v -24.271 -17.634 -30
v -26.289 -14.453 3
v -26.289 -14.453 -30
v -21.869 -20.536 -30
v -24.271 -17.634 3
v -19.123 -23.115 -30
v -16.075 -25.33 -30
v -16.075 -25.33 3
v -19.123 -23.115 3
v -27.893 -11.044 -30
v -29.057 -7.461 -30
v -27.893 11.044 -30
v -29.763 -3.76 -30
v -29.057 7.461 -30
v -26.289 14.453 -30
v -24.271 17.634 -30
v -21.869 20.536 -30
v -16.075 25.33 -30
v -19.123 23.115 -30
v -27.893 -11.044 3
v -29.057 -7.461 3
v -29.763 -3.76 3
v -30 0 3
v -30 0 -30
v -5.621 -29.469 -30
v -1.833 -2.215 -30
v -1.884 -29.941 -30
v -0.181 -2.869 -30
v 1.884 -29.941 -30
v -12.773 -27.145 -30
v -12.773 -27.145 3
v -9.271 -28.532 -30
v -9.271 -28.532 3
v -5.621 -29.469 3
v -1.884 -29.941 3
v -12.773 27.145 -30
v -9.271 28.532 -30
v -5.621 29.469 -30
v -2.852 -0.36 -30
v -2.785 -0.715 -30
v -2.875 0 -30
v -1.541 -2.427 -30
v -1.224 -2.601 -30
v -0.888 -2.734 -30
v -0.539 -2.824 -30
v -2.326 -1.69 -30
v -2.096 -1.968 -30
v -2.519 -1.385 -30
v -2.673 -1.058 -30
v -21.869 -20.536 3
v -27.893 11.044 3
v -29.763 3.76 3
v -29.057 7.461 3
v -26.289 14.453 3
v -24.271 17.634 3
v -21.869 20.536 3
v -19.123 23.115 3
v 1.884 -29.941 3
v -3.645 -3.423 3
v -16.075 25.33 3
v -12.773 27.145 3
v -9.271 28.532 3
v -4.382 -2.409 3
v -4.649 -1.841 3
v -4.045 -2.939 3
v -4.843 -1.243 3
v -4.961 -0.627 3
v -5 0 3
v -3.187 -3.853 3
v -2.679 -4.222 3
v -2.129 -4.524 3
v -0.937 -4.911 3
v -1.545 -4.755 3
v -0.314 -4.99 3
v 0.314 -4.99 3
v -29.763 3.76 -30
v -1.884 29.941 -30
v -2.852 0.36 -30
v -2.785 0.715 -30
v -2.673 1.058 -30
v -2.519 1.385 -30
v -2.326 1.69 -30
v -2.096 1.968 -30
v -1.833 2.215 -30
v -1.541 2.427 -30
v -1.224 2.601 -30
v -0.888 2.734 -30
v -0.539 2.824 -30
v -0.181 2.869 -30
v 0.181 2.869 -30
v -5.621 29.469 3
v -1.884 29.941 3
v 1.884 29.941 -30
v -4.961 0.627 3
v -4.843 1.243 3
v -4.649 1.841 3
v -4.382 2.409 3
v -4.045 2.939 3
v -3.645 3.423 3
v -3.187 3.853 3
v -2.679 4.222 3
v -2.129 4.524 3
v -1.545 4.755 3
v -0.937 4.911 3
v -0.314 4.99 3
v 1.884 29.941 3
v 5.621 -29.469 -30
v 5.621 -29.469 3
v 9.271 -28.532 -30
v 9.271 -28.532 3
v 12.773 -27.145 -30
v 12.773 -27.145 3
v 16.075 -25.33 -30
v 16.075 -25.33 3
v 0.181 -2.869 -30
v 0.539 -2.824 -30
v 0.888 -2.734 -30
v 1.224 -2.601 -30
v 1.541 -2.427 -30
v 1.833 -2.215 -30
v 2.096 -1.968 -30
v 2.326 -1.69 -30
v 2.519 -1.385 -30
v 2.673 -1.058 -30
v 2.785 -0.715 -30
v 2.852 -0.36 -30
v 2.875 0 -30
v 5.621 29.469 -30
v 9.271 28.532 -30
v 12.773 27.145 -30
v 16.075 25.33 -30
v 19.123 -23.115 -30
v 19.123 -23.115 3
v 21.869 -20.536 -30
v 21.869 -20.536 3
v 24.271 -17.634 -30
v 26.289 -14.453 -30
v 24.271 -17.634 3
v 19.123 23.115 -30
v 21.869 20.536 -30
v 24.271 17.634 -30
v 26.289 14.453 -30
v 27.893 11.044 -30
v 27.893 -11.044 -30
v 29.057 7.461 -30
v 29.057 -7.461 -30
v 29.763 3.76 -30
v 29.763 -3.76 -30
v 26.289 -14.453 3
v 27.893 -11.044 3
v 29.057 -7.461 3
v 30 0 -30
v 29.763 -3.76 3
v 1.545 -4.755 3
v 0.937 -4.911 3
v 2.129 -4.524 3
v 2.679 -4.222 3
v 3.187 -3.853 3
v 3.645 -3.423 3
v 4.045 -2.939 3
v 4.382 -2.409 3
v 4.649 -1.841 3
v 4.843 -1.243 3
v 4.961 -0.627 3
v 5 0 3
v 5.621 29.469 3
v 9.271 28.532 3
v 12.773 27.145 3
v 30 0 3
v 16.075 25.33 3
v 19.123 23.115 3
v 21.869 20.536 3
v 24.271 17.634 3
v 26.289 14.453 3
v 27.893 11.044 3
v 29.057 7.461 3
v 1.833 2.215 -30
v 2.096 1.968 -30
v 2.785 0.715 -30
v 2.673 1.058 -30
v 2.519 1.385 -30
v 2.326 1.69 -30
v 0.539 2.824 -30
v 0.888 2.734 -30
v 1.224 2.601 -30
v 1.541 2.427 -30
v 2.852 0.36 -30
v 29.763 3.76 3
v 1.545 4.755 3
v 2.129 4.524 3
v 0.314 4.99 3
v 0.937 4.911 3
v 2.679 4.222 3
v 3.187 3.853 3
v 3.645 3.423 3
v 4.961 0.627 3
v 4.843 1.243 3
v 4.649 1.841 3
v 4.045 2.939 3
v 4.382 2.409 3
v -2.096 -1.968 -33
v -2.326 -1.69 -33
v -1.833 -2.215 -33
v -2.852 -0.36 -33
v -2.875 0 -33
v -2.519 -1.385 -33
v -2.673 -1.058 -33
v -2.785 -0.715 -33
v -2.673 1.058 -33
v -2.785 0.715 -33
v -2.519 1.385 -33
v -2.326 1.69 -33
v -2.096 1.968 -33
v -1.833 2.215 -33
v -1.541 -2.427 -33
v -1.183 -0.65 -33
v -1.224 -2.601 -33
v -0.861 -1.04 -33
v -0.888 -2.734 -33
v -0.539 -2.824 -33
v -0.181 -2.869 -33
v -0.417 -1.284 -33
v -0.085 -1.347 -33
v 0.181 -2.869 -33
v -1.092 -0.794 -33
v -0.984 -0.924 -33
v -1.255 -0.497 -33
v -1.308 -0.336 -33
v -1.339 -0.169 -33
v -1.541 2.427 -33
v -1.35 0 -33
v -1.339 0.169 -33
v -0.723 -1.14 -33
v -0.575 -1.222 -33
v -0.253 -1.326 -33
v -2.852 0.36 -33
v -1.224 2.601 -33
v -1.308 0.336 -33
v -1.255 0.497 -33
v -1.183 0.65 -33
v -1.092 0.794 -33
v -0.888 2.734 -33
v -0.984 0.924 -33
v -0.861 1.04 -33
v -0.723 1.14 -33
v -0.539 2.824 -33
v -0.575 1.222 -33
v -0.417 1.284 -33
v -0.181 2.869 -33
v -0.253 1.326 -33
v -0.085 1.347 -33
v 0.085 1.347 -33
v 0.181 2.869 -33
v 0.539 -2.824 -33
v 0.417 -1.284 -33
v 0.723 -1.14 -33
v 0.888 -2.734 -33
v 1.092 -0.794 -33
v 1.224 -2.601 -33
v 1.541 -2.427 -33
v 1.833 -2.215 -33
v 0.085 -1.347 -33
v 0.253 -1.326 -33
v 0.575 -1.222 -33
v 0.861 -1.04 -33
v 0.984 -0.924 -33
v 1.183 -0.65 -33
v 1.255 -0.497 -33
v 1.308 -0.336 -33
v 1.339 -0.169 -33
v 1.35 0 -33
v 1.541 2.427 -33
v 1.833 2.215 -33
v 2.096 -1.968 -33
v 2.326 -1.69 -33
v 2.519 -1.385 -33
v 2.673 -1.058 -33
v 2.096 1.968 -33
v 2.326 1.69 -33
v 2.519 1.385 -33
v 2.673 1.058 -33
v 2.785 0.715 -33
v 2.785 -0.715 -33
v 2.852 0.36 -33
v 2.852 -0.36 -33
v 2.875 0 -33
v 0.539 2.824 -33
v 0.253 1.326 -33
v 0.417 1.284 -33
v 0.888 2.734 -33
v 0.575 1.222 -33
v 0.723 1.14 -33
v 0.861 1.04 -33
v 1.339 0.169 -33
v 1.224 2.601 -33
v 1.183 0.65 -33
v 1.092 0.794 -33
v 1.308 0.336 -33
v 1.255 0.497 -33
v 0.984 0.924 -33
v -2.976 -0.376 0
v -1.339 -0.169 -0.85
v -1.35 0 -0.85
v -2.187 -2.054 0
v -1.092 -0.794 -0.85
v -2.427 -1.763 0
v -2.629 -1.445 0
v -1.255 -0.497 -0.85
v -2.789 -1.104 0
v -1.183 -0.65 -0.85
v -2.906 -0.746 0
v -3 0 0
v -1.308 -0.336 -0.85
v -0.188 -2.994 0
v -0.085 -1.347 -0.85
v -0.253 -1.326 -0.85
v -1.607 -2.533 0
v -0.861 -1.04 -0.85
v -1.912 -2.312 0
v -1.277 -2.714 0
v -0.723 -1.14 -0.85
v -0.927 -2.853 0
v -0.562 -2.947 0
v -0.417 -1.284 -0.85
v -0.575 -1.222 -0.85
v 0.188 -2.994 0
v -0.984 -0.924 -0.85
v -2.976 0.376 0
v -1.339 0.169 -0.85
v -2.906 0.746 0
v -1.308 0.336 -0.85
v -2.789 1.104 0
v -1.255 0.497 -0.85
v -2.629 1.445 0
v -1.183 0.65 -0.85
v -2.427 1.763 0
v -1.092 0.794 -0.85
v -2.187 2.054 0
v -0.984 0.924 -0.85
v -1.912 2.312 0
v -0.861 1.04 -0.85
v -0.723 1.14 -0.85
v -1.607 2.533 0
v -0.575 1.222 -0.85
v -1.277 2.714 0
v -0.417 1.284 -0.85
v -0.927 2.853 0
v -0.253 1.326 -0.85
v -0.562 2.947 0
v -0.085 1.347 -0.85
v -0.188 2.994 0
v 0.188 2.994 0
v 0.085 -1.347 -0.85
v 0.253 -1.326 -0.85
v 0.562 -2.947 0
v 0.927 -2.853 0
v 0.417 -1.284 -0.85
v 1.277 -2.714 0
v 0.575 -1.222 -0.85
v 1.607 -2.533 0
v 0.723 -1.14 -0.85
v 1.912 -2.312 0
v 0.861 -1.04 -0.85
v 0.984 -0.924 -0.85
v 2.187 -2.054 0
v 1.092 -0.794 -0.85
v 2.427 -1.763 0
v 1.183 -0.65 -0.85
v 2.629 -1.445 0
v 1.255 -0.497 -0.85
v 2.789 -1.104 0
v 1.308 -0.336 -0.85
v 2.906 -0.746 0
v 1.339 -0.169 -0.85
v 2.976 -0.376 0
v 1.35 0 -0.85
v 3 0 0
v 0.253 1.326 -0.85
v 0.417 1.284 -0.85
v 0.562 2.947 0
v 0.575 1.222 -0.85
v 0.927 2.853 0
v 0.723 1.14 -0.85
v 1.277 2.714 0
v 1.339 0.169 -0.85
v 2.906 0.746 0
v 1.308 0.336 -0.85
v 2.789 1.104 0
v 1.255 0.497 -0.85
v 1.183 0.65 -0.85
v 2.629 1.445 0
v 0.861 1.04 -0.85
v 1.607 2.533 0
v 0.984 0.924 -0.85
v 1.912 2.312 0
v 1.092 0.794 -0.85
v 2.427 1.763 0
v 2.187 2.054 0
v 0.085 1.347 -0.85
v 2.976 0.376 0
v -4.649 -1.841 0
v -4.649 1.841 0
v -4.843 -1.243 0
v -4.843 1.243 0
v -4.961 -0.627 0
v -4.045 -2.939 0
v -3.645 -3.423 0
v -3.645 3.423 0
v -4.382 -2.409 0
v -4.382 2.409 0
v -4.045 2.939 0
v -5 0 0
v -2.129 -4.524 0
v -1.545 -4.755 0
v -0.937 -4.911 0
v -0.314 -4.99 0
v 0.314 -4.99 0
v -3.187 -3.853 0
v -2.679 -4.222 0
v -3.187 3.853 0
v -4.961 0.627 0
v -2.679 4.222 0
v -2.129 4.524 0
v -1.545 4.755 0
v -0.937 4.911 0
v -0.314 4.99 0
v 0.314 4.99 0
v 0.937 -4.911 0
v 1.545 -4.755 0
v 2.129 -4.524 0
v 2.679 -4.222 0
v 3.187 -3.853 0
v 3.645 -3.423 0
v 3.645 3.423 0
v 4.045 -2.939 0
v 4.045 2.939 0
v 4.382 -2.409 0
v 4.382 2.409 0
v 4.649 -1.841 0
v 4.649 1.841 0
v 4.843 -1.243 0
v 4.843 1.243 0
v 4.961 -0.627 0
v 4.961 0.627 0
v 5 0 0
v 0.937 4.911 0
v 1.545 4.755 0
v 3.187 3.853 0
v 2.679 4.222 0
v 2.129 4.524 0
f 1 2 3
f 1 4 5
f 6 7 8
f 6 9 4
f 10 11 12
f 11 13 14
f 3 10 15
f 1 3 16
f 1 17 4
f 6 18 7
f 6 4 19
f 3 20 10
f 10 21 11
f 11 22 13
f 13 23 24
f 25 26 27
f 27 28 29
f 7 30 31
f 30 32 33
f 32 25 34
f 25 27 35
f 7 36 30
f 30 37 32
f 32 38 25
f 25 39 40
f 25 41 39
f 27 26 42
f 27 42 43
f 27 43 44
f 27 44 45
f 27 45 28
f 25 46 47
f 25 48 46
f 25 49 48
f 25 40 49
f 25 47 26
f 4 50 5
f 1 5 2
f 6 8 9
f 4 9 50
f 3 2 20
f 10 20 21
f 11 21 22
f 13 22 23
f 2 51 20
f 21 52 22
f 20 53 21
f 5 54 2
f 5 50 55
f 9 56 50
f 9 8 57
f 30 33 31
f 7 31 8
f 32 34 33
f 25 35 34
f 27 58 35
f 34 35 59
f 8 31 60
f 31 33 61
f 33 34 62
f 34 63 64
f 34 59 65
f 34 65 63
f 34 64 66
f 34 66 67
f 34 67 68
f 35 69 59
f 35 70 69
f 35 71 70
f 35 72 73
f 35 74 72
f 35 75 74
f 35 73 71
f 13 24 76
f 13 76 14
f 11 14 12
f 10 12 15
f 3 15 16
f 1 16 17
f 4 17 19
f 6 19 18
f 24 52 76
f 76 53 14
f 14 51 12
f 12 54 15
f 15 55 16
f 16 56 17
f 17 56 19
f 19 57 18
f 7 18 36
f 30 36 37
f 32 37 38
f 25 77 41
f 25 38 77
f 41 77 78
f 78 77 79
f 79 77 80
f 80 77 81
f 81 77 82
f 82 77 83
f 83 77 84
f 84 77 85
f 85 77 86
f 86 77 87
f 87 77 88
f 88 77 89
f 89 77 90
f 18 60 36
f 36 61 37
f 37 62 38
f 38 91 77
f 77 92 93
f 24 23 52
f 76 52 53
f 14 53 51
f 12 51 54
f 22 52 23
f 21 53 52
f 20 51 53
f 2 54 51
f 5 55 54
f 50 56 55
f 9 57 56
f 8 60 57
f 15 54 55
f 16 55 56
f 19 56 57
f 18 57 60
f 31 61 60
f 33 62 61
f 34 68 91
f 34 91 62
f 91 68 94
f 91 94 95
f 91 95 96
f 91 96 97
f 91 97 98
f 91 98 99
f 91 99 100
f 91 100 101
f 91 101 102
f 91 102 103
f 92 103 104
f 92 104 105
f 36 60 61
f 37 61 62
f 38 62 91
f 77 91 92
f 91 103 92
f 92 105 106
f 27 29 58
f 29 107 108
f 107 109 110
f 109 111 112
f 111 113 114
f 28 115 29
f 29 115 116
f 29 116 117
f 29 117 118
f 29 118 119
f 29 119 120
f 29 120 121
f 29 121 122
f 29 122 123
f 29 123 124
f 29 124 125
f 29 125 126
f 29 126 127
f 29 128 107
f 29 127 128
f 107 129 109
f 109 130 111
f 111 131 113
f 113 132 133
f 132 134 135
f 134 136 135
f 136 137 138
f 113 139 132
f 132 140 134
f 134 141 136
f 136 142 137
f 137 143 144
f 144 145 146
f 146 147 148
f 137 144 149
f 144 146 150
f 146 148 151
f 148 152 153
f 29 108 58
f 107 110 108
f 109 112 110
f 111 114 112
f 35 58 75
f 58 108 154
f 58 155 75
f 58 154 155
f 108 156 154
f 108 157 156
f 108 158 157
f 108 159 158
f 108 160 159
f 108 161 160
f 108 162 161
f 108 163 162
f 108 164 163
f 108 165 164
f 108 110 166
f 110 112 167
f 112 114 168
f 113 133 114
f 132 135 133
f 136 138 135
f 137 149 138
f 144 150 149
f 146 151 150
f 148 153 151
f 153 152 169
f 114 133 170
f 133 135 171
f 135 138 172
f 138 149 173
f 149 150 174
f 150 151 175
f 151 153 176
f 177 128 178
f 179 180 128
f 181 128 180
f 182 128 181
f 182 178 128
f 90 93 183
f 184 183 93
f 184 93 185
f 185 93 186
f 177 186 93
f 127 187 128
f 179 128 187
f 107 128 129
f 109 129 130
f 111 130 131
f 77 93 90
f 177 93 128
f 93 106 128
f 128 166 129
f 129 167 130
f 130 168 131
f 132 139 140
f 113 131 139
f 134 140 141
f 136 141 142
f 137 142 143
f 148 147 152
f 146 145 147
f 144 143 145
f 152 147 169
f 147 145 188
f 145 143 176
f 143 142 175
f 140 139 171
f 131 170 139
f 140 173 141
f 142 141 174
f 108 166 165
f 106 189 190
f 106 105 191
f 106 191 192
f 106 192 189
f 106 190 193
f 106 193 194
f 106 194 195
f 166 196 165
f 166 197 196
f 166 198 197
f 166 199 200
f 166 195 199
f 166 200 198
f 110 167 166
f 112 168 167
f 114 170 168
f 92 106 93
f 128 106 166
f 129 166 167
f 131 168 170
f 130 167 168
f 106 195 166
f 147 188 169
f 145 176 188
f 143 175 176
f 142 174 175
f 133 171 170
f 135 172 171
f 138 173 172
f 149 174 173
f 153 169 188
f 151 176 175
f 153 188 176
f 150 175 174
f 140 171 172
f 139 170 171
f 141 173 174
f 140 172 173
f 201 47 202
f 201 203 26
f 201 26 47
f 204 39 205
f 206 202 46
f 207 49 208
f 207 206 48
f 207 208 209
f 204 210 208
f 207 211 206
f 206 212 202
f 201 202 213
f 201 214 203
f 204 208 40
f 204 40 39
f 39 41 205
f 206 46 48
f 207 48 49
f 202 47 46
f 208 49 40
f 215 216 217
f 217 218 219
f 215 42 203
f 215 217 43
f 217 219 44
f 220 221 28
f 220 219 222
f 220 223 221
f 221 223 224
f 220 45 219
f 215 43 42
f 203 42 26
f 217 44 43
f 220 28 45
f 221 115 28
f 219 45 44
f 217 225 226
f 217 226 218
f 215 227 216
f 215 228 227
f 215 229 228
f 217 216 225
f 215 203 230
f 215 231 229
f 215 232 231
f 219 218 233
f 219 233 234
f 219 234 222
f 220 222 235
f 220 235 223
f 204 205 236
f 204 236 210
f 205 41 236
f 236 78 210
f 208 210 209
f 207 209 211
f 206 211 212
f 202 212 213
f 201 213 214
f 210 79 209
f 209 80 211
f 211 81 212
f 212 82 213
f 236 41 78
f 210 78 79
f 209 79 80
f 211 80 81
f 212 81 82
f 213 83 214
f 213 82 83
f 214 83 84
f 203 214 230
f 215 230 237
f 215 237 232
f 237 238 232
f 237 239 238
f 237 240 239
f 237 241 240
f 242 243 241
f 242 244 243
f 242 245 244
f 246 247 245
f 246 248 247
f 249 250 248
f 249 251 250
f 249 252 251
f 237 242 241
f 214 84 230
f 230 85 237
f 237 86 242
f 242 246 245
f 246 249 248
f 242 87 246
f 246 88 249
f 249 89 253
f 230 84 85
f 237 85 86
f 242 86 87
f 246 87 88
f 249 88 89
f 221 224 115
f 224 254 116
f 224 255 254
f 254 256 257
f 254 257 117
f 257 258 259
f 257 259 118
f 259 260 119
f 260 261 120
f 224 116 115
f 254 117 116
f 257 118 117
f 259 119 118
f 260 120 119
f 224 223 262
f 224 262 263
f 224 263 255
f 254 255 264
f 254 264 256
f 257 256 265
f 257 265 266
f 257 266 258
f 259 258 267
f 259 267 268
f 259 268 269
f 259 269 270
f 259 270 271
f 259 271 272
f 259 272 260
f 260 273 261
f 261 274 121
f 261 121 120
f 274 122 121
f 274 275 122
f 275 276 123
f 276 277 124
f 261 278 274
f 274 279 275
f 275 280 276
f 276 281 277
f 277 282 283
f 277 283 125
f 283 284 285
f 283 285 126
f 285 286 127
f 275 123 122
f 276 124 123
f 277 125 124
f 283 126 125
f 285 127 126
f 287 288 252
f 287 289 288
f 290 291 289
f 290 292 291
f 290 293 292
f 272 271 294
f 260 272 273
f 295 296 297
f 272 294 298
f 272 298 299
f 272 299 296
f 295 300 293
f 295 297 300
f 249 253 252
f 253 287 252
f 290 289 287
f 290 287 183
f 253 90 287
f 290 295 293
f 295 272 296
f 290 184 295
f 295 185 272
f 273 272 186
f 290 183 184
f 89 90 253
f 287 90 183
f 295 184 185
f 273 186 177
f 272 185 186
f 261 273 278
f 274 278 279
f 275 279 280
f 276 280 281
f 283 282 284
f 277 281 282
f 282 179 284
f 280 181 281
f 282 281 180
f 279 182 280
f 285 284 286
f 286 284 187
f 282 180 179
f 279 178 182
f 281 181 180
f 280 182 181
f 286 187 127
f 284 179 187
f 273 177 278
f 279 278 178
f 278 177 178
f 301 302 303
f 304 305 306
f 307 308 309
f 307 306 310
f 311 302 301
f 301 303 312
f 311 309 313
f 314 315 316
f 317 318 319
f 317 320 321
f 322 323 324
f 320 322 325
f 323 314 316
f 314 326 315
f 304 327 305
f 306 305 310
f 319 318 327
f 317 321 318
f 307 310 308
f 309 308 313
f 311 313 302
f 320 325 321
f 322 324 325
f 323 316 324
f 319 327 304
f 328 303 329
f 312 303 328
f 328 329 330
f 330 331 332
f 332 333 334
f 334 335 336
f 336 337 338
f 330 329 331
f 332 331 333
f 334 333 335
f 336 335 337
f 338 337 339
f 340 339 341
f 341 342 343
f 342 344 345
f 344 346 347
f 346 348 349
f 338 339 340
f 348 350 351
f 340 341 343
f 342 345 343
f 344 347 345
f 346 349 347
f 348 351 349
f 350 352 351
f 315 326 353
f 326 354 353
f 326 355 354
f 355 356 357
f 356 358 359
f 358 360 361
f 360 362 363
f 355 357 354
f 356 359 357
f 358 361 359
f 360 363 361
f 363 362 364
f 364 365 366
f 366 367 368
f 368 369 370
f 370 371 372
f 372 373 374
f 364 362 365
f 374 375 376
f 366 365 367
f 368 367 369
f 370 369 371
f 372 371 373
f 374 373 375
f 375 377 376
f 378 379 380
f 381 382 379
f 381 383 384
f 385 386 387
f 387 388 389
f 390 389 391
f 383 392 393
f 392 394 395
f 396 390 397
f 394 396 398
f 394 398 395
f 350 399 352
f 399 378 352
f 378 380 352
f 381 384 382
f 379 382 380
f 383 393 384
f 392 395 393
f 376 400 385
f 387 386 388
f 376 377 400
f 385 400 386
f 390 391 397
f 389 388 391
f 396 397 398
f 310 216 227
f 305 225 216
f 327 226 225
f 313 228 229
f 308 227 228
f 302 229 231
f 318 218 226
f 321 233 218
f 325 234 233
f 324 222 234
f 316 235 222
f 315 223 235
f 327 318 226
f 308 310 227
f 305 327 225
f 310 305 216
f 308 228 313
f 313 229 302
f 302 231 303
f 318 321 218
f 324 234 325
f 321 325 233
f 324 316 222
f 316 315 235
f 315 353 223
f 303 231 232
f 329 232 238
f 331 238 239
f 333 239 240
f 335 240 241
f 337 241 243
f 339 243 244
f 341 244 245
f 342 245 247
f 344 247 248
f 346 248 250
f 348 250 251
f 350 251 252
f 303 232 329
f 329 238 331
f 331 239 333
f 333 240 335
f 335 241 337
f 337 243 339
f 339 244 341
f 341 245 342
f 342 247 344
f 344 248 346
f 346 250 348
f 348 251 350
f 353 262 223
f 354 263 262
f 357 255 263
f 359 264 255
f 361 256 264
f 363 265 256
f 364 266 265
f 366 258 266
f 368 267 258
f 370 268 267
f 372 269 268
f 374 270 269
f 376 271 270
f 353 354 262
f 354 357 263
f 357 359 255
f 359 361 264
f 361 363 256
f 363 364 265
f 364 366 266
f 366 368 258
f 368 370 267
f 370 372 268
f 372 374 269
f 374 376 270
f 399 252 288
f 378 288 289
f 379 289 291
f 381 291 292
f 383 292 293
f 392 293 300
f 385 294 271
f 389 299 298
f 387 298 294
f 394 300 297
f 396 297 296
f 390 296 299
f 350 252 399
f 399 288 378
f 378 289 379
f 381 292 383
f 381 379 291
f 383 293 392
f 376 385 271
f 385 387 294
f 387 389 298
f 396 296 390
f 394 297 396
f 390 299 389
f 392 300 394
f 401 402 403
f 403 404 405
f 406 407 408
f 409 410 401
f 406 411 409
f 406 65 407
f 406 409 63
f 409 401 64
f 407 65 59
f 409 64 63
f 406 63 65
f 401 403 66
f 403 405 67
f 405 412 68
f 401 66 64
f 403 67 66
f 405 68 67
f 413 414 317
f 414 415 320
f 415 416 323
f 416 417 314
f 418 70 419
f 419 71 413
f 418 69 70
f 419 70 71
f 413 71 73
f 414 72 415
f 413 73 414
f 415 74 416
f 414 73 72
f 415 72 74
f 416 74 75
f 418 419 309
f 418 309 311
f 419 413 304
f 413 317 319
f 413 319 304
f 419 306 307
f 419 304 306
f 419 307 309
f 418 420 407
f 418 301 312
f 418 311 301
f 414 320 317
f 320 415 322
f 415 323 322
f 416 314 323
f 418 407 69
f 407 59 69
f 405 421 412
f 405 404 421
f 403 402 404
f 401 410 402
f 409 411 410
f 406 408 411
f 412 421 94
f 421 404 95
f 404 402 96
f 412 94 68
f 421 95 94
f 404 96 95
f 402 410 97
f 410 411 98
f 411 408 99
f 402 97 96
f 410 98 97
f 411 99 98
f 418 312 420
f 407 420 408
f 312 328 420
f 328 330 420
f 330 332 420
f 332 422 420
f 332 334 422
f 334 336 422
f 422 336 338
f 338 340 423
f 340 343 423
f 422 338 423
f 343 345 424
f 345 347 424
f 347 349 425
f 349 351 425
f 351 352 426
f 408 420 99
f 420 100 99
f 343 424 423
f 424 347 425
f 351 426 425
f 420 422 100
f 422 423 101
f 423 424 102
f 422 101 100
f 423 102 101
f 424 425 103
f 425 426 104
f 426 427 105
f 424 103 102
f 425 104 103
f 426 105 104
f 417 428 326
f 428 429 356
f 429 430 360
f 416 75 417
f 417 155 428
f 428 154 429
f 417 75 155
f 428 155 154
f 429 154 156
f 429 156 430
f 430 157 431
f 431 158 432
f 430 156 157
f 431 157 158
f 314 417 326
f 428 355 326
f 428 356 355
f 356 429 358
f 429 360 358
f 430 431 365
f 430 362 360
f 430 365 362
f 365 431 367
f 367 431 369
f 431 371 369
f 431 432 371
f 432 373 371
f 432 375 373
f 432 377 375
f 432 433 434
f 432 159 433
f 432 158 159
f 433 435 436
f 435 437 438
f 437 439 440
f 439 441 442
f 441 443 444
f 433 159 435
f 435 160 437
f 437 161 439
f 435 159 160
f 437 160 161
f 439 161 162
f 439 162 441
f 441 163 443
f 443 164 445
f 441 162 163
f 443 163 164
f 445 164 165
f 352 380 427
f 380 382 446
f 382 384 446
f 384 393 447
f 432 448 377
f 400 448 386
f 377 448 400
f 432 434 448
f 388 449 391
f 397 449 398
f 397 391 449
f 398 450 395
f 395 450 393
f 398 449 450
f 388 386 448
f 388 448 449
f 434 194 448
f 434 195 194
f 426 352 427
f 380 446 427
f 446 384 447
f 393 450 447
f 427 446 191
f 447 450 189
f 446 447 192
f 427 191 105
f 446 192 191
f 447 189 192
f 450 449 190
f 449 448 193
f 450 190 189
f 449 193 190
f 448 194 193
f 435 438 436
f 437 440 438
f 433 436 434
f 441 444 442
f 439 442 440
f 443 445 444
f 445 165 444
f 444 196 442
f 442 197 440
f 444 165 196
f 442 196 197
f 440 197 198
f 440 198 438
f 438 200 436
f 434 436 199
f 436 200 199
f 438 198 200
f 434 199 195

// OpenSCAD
$fn = 50;


difference() {
	union() {
		translate(v = [0, 0, -30.0000000000]) {
			cylinder(h = 33, r = 30.0000000000);
		}
		#translate(v = [0, 0, -33.0000000000]) {
			cylinder(h = 33, r = 2.8750000000);
		}
	}
	union() {
		translate(v = [0, 0, 0]) {
			rotate(a = [0, 0, 0]) {
				difference() {
					union() {
						translate(v = [0, 0, -33.0000000000]) {
							cylinder(h = 33, r = 1.0000000000);
						}
						translate(v = [0, 0, -0.8500000000]) {
							cylinder(h = 0.8500000000, r1 = 1.3500000000, r2 = 3.0000000000);
						}
						translate(v = [0, 0, -33.0000000000]) {
							cylinder(h = 33, r = 1.3500000000);
						}
						translate(v = [0, 0, -33.0000000000]) {
							cylinder(h = 33, r = 1.0000000000);
						}
					}
					union();
				}
			}
		}
		#cylinder(h = 3, r = 5.0000000000);
	}
}
